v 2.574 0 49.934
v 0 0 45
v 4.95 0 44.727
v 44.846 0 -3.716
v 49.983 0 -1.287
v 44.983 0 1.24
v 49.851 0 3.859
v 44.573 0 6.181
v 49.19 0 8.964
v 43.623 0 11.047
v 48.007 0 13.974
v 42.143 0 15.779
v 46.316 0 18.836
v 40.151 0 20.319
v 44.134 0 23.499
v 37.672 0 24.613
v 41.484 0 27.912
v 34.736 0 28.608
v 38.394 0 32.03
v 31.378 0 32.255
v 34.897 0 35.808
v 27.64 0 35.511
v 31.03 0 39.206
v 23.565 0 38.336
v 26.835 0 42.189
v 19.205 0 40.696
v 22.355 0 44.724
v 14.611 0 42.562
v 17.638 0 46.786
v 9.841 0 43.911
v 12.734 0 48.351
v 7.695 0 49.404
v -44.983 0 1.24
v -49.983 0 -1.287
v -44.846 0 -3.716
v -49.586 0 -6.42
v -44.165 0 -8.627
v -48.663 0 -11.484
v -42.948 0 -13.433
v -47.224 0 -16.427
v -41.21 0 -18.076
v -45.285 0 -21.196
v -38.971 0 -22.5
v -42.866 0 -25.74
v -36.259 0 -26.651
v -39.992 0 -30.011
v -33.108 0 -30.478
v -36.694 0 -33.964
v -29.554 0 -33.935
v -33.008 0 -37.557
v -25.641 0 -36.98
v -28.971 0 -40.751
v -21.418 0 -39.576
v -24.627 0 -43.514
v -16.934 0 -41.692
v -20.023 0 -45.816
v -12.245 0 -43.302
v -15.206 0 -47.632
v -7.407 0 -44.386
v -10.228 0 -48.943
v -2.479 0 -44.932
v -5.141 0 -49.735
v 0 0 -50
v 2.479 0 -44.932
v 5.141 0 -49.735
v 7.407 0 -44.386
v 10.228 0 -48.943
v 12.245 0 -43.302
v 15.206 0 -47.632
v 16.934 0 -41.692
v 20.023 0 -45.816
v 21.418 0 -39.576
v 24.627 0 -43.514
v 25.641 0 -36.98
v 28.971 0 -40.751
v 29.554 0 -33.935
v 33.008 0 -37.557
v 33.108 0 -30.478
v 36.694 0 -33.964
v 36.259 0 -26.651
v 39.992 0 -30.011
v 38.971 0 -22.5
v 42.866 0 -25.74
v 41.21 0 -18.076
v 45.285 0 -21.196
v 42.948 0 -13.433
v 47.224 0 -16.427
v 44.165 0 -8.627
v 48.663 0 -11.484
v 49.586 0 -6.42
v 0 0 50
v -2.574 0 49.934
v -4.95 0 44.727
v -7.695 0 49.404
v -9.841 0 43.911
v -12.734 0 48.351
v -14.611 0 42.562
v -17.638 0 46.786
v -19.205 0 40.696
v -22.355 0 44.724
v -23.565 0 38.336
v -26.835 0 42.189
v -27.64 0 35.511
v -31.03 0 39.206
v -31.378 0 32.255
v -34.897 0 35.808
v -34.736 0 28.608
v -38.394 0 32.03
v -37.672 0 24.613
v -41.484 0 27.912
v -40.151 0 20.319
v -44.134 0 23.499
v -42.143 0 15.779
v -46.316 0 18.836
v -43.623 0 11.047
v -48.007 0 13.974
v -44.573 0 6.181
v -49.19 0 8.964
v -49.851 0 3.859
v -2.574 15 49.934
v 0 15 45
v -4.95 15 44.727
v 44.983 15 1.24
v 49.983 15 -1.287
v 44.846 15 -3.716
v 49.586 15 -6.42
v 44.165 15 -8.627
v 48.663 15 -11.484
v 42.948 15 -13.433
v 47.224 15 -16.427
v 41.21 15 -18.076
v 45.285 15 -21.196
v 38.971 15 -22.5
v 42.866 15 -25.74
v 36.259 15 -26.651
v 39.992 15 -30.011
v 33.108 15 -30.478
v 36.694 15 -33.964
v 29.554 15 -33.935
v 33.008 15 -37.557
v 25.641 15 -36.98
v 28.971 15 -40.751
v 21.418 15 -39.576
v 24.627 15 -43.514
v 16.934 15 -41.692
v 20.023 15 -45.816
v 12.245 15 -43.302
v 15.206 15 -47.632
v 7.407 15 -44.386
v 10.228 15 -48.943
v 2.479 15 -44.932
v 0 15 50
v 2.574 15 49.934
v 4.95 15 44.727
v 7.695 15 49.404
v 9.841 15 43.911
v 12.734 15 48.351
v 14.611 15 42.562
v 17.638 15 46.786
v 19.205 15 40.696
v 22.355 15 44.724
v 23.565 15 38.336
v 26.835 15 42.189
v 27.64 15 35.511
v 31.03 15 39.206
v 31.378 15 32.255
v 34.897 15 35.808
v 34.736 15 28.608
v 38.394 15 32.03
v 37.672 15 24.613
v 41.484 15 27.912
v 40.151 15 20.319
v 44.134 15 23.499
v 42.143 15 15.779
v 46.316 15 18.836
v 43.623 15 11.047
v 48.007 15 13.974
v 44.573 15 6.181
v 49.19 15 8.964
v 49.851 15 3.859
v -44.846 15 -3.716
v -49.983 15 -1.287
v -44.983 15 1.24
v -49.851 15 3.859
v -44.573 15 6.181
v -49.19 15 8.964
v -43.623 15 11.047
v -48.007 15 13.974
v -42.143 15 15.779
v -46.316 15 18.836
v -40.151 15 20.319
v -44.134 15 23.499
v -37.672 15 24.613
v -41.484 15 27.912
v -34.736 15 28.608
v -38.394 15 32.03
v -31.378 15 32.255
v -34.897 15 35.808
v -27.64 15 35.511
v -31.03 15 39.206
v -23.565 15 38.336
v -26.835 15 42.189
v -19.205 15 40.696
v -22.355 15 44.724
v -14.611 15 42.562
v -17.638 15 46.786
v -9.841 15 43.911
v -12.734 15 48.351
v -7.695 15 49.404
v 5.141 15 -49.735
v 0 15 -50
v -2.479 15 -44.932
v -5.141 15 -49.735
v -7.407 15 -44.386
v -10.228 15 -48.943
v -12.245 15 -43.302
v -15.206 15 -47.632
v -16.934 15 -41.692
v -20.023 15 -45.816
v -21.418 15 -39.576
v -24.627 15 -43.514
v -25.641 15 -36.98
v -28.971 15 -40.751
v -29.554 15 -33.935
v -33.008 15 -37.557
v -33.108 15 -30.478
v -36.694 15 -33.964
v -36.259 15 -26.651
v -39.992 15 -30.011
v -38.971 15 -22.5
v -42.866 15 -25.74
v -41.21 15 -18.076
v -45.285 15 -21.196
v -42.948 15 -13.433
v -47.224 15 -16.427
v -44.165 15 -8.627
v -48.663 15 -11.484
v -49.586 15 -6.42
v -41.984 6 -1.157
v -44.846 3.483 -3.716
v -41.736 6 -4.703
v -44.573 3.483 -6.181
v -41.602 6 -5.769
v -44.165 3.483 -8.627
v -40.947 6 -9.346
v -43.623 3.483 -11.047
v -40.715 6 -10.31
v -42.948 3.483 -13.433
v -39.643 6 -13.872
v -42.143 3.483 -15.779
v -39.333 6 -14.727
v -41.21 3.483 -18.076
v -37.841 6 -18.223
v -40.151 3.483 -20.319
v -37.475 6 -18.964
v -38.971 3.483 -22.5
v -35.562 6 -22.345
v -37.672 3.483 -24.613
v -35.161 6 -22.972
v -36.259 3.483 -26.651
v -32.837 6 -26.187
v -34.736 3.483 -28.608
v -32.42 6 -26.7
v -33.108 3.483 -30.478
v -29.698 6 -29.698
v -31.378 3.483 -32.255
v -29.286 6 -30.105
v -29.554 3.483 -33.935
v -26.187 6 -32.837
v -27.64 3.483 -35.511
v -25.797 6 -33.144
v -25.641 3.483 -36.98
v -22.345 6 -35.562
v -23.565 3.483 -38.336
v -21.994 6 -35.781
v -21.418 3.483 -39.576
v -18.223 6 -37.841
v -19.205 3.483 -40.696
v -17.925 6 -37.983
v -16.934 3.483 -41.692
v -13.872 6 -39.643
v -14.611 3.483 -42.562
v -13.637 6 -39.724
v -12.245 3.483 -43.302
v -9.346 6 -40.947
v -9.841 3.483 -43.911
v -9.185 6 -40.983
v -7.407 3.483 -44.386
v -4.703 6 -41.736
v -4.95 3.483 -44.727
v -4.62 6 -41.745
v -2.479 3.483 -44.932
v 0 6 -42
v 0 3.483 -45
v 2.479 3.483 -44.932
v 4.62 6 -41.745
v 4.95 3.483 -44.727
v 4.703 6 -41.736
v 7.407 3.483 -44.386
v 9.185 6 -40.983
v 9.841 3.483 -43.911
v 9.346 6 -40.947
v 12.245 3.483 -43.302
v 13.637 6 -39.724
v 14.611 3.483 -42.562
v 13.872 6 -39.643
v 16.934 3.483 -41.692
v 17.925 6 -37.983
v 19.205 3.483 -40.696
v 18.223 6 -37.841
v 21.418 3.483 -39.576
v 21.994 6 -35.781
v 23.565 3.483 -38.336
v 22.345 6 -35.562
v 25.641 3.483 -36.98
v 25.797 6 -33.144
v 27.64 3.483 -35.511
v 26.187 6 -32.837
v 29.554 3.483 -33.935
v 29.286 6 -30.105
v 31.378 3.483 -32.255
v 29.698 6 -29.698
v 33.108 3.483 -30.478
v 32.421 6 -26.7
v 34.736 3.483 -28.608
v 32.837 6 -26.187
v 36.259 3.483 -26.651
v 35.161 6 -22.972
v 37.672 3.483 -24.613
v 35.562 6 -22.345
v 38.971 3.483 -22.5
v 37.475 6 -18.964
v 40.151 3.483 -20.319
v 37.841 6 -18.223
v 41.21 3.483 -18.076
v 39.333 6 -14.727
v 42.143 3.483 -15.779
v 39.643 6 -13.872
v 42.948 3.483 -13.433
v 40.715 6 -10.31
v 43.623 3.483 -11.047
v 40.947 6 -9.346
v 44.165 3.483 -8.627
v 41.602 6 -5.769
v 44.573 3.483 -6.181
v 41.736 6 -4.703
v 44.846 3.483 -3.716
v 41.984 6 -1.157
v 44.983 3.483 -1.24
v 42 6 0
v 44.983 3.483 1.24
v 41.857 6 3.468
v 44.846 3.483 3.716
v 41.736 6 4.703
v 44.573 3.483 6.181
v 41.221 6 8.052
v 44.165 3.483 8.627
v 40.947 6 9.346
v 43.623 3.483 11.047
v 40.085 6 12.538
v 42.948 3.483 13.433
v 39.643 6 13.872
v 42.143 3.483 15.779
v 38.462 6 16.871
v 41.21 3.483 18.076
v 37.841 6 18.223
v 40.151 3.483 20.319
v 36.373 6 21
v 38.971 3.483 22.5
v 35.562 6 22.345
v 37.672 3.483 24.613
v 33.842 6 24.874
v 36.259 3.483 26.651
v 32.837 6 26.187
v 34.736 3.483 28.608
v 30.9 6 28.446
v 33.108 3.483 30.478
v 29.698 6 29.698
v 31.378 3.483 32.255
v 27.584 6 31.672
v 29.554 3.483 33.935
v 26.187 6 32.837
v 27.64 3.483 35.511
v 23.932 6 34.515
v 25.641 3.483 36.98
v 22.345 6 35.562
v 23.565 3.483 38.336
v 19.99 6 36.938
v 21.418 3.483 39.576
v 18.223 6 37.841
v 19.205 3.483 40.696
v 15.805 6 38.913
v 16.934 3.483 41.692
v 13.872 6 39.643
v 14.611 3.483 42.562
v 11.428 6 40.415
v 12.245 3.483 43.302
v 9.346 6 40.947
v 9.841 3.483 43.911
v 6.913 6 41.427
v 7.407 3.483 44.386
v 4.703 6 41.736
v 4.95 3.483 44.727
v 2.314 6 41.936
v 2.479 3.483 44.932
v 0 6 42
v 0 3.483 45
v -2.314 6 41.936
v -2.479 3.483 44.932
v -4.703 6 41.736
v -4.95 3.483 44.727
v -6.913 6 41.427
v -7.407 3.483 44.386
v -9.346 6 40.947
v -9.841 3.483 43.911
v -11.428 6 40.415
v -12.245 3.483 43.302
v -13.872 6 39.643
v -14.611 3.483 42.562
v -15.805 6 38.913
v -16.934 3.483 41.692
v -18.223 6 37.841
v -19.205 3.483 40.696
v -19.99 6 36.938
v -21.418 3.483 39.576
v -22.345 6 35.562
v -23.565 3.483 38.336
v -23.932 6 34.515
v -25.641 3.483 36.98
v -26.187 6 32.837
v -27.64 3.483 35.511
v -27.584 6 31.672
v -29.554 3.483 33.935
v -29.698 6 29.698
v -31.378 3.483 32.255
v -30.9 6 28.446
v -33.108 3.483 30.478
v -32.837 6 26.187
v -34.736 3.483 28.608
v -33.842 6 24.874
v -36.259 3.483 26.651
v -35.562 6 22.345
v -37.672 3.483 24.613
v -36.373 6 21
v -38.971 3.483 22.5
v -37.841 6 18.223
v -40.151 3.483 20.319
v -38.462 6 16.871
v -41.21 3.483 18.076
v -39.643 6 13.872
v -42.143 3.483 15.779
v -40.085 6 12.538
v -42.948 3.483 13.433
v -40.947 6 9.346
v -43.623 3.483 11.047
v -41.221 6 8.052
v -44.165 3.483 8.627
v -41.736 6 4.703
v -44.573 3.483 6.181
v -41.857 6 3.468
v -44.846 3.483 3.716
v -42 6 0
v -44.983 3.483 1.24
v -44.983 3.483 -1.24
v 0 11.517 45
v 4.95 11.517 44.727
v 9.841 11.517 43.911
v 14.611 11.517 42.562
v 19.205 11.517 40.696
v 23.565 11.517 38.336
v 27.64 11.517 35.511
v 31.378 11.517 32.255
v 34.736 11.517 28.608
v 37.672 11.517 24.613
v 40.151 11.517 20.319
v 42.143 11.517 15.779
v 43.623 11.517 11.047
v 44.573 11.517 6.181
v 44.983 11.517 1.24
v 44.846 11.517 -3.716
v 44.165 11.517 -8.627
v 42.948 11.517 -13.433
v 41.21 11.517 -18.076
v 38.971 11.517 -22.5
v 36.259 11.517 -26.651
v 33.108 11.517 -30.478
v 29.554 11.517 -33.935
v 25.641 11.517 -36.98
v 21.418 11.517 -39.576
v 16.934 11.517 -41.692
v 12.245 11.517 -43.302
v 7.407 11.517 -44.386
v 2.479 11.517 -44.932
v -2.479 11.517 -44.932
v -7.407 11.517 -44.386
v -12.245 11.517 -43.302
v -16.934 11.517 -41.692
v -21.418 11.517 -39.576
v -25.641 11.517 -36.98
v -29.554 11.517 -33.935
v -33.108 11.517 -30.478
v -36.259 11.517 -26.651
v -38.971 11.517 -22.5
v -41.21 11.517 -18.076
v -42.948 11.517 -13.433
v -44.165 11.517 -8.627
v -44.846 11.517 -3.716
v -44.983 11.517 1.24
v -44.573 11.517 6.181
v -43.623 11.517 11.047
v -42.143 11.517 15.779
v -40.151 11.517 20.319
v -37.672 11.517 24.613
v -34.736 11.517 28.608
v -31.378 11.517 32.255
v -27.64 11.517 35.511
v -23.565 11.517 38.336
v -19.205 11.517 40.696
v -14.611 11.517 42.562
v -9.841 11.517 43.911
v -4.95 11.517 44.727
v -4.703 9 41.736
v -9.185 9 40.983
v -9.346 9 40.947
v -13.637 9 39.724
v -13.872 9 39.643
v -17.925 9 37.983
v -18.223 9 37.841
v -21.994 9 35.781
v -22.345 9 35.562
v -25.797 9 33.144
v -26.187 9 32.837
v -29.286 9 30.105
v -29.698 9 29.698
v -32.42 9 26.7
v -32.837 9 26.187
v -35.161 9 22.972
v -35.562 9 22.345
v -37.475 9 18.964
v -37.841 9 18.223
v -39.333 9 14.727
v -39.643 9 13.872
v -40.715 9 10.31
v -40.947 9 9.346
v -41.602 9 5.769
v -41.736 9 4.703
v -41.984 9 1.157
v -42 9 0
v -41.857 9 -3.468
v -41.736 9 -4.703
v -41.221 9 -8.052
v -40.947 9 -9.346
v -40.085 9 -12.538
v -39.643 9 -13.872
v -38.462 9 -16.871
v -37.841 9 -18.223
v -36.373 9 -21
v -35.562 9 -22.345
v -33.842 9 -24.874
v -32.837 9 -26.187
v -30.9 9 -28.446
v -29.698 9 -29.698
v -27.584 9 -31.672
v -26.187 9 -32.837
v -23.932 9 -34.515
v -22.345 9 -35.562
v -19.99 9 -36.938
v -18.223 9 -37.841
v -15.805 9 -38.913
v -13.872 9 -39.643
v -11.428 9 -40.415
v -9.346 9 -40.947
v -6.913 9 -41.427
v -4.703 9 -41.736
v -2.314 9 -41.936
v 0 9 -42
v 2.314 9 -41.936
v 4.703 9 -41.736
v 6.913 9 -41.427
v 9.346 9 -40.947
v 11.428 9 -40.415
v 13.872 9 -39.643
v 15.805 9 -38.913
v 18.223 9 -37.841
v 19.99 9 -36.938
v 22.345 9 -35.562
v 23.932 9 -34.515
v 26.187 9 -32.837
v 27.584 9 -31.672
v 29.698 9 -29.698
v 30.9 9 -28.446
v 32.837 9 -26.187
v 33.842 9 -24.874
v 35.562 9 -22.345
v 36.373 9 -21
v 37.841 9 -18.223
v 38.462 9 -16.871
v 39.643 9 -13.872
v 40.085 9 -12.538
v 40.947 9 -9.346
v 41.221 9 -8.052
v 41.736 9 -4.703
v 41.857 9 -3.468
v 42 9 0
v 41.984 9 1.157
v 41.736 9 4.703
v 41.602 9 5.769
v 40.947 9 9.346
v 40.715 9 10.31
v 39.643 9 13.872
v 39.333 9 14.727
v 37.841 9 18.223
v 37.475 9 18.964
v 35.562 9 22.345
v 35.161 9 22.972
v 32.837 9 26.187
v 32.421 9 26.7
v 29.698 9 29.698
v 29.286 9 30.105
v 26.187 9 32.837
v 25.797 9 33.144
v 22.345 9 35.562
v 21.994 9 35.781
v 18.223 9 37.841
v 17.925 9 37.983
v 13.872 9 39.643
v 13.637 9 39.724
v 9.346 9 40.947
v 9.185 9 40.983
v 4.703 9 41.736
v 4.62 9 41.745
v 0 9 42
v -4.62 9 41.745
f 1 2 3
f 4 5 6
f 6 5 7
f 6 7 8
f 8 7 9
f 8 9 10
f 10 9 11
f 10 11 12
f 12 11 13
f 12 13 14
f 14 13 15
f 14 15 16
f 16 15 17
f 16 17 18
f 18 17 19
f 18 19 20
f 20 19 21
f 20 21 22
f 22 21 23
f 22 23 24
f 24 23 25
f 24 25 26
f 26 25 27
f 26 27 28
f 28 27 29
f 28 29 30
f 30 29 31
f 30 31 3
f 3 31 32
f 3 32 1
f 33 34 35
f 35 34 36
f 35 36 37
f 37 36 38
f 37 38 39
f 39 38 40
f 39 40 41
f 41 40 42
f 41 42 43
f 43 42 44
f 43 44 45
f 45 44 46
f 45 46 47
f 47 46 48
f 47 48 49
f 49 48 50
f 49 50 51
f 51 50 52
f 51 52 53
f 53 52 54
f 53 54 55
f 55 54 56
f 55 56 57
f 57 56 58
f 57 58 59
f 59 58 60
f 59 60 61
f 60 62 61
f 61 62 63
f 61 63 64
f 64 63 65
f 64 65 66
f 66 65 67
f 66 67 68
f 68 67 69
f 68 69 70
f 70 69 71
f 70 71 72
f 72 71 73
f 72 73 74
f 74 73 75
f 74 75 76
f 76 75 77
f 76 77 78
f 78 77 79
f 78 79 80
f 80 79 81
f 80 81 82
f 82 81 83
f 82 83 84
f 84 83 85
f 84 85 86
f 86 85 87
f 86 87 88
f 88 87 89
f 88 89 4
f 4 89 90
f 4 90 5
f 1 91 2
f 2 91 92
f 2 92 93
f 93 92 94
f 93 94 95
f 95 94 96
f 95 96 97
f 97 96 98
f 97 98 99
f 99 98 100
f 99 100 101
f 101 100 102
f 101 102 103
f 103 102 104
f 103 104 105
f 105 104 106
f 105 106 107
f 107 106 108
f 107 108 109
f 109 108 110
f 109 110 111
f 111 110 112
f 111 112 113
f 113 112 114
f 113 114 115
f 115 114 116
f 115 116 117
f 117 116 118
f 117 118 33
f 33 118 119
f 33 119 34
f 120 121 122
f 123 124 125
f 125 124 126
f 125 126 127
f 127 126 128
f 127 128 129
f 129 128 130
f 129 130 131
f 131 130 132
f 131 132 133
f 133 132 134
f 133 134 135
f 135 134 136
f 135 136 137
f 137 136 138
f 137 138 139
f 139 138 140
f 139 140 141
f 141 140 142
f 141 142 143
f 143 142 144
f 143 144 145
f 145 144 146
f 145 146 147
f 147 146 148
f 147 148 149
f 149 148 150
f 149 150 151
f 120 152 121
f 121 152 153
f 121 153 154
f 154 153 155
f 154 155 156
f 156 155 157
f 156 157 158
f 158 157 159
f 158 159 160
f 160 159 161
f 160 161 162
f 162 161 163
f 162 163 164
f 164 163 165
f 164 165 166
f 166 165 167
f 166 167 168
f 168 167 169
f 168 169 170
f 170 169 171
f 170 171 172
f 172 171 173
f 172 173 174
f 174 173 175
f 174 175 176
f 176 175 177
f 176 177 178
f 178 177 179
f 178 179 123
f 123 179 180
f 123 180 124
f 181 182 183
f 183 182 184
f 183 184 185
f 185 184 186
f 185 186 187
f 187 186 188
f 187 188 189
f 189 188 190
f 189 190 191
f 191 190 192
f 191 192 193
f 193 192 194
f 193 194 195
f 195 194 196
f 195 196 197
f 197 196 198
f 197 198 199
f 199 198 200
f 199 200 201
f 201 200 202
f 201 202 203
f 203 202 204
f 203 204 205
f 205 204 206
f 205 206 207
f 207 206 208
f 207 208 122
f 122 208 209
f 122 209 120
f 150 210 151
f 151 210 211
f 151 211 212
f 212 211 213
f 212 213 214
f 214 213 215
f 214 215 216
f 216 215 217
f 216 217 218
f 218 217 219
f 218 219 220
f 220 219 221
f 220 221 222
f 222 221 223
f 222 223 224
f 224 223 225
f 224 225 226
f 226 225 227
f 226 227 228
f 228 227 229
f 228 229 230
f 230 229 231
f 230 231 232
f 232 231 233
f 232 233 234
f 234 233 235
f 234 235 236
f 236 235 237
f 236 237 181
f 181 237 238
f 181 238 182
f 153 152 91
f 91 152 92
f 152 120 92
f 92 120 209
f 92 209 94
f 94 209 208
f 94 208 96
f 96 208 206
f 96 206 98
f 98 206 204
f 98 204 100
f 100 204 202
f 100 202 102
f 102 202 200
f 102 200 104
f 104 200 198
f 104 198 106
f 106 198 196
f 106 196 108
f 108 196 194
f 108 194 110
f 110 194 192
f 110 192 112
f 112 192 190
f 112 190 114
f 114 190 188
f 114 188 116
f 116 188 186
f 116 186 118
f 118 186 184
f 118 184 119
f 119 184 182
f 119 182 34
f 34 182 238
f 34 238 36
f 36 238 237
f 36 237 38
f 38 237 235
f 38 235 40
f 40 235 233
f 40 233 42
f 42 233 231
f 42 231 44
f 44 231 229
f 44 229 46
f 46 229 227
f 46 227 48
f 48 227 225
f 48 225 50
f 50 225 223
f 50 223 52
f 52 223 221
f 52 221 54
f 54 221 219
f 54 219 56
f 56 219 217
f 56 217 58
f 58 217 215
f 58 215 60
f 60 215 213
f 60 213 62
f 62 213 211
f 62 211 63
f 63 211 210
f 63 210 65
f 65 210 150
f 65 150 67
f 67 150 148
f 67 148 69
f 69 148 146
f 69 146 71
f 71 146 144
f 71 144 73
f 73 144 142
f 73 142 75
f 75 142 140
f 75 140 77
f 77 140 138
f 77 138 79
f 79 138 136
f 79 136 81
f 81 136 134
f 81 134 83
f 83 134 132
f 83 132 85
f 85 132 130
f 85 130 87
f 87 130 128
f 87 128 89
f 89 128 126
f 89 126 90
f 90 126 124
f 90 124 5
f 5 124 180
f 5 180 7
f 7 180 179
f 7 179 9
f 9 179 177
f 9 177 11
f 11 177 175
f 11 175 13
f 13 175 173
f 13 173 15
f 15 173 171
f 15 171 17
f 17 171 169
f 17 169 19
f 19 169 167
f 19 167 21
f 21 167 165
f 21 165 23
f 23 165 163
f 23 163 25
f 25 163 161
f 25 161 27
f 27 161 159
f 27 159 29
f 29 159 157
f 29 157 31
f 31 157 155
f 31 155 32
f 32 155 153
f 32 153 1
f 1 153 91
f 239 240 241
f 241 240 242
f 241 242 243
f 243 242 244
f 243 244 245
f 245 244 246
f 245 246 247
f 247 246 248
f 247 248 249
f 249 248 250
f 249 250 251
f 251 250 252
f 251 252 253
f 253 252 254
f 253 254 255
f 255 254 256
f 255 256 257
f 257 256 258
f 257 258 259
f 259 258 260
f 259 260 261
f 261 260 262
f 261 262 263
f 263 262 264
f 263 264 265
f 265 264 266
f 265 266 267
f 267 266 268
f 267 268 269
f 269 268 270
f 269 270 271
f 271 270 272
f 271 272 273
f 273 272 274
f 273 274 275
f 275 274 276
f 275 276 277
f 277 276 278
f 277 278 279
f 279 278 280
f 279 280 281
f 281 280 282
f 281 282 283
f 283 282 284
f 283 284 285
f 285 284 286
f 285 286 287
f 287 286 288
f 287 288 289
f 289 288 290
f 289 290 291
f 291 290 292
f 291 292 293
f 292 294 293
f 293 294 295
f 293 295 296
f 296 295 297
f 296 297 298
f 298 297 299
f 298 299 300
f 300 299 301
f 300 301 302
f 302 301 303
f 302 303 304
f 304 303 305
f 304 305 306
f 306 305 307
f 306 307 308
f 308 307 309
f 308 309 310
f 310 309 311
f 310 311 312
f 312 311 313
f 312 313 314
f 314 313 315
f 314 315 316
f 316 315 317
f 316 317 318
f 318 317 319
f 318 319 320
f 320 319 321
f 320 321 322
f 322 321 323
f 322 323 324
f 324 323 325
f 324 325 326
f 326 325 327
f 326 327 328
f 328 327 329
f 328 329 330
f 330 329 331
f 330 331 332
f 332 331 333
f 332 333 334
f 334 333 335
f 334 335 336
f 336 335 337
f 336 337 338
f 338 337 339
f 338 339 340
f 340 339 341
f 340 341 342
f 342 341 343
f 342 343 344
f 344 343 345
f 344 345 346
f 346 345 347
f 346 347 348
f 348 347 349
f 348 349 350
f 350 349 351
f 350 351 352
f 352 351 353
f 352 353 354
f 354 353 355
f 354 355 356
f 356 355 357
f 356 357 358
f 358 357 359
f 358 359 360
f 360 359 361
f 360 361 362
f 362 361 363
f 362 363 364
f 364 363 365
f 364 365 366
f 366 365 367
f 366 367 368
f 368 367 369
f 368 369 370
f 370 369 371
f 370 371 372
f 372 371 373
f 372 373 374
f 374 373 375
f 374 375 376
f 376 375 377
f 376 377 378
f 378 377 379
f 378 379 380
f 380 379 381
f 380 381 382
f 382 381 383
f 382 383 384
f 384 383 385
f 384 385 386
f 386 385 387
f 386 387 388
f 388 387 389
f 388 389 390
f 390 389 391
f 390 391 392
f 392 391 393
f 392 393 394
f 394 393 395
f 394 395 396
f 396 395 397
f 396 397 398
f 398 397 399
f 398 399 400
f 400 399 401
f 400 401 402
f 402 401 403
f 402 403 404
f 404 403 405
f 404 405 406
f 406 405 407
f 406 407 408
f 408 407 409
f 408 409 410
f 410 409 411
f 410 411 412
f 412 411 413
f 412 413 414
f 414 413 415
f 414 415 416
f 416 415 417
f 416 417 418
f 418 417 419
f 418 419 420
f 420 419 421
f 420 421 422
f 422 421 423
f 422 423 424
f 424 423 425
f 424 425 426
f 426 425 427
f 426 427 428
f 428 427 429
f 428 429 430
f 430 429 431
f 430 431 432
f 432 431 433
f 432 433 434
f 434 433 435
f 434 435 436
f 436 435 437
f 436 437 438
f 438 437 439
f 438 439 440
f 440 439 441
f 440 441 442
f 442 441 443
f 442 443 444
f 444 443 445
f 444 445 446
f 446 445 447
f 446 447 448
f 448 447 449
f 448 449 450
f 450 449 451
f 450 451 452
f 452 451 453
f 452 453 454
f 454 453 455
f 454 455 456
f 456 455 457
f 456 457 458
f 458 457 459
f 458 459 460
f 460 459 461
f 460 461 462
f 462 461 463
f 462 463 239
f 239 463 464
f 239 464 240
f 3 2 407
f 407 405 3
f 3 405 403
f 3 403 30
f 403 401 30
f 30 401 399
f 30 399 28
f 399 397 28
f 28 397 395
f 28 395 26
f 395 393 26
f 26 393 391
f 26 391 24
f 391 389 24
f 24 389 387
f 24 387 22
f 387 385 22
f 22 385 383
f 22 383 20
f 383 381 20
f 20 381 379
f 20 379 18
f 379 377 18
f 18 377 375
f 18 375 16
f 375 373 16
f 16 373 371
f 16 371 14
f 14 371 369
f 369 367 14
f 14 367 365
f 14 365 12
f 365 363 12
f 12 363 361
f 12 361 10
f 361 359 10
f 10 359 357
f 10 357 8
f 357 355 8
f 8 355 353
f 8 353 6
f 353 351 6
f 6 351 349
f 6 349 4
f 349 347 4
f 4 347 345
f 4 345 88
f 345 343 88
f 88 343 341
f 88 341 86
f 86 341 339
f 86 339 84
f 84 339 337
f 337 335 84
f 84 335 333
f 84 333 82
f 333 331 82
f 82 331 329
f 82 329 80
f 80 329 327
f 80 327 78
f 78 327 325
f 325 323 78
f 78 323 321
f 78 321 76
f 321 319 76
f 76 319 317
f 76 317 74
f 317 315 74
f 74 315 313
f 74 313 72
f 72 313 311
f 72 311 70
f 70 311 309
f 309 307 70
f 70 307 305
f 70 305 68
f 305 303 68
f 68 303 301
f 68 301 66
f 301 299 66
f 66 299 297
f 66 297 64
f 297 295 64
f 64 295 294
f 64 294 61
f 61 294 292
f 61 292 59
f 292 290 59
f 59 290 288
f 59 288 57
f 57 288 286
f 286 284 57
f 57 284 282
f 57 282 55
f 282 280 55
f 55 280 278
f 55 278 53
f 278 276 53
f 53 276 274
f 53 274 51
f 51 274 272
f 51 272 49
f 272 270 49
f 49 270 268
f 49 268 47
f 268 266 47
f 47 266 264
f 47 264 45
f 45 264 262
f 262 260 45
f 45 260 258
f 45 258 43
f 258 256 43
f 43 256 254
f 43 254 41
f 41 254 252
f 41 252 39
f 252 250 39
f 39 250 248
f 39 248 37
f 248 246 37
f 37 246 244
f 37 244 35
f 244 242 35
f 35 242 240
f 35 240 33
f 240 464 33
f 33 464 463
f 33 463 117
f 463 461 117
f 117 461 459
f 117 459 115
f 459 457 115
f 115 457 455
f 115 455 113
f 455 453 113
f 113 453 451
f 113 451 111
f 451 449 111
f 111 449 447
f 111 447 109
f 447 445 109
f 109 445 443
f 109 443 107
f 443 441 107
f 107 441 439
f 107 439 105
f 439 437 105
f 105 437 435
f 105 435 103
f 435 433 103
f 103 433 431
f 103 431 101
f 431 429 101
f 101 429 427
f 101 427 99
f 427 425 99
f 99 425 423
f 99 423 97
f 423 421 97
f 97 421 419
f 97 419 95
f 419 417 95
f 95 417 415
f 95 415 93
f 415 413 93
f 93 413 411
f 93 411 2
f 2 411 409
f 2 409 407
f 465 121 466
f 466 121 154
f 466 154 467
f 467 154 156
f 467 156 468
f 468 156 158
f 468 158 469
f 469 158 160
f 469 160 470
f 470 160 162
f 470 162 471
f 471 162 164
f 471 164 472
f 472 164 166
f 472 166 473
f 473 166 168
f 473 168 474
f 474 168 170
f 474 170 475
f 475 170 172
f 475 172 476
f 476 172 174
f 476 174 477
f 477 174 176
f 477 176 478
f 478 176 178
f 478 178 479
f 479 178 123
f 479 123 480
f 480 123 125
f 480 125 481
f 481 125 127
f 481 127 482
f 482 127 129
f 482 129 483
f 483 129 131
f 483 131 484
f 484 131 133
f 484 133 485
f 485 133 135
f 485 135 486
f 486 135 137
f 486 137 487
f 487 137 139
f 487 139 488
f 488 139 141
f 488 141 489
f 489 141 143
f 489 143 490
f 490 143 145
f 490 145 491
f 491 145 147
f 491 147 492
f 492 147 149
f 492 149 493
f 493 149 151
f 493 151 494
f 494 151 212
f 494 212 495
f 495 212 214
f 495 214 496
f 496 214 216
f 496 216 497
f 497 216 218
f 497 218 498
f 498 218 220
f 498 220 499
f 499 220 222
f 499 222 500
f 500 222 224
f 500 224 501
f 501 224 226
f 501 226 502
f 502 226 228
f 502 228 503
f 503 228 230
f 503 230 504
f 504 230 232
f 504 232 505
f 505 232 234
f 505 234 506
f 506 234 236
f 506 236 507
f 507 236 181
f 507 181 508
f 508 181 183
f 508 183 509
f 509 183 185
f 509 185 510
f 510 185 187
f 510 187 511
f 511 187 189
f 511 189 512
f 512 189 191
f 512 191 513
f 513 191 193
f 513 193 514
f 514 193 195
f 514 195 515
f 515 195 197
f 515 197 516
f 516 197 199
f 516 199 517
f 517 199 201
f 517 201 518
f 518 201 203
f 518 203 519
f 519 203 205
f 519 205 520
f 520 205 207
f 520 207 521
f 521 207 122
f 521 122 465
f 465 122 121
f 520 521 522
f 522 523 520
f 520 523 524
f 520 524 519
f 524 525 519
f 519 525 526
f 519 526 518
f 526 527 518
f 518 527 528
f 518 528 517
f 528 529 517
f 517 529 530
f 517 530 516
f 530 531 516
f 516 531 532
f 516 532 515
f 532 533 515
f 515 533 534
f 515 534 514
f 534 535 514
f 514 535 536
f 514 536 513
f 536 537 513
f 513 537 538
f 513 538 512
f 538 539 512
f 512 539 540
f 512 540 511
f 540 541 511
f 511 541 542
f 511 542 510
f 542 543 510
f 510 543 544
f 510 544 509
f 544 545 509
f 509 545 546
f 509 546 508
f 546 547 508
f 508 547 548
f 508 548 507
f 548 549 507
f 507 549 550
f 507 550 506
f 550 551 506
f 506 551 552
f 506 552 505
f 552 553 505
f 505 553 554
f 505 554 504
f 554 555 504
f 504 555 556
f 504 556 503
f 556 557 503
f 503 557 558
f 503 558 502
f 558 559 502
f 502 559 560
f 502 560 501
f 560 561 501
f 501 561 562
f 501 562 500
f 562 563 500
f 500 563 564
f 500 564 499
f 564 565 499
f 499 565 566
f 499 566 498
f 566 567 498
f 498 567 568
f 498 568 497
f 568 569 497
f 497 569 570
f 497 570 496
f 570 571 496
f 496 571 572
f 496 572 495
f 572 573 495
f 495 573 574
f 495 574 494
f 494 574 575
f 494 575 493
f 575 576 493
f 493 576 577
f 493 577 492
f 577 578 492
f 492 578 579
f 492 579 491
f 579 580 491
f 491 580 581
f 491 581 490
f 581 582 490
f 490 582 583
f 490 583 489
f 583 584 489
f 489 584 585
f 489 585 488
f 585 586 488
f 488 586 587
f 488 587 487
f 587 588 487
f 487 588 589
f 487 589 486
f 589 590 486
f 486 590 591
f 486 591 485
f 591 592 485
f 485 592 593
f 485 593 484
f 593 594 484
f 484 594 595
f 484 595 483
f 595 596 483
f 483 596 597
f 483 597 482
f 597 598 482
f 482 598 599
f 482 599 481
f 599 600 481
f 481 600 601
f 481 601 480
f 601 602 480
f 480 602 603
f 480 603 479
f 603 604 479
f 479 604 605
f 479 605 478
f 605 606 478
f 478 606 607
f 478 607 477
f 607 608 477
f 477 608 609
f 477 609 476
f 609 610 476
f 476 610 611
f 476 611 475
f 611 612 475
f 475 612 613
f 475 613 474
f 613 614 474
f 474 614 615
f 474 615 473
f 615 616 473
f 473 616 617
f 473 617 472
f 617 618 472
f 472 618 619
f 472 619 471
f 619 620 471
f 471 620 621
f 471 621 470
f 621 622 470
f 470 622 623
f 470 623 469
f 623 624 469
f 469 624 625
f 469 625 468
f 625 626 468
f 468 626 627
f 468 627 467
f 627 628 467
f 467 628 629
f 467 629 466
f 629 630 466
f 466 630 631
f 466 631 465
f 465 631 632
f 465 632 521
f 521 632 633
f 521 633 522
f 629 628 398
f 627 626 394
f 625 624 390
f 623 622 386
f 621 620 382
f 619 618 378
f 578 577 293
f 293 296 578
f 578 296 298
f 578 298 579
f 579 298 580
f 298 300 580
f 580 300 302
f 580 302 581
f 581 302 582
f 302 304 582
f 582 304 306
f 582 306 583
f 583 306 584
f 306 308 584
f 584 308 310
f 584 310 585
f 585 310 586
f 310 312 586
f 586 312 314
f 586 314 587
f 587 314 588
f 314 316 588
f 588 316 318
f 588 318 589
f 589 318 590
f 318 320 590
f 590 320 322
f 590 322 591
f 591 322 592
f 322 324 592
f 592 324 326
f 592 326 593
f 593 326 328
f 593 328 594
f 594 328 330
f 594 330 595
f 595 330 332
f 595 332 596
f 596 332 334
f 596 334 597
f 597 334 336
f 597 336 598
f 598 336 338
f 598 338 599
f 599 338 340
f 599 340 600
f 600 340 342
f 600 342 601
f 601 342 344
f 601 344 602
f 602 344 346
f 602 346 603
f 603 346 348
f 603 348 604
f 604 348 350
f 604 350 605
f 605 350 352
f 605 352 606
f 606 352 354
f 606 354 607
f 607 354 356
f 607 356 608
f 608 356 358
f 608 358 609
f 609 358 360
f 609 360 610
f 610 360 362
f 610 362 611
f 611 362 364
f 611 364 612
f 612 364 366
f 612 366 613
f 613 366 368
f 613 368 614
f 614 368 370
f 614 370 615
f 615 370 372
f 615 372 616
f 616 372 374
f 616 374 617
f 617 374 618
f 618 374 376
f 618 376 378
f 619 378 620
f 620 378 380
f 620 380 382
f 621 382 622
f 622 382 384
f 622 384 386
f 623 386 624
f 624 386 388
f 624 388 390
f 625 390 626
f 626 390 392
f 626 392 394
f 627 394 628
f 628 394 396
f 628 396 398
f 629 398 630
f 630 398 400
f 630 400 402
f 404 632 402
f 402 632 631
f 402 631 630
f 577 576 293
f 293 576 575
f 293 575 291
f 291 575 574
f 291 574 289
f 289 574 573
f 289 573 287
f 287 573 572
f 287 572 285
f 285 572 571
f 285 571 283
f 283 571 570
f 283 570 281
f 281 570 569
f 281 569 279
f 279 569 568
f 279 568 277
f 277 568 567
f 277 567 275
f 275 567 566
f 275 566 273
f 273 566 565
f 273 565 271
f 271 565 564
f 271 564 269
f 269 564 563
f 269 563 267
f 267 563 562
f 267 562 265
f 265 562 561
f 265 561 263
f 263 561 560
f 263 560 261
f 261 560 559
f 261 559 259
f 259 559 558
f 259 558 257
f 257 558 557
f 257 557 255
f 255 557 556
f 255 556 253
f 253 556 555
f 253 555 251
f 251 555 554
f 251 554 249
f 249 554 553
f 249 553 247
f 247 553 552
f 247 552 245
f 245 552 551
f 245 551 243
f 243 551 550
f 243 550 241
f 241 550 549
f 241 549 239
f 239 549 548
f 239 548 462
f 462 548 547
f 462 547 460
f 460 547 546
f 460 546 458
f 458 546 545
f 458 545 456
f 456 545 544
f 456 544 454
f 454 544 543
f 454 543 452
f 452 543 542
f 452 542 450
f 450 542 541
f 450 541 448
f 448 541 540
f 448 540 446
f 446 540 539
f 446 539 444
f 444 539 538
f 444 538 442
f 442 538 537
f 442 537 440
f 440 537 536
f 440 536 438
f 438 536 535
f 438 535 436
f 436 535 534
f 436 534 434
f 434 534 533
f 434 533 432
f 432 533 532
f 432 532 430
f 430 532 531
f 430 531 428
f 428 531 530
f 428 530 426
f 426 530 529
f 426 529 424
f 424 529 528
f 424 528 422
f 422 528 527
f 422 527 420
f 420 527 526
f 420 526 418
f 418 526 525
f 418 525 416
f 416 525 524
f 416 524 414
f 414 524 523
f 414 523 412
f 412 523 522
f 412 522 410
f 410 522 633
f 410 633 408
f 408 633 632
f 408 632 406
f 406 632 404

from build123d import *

# Parameters (mm, degrees)
CROQUIS1_R              = 50
CROQUIS1_R_2            = 42
SALIENTE_EXTRUIR1_DEPTH = 15


with BuildPart() as part:
    # Croquis1 → Saliente-Extruir1 (new body)
    with BuildSketch(Plane(origin=(0, 0, 0), x_dir=(1, 0, 0), z_dir=(0, 1, 0))):
        with Locations(Location((0, 0, 0), (0, 0, 270))):
            Circle(CROQUIS1_R)
        with Locations(Location((0, 0, 0), (0, 0, 270))):
            Circle(CROQUIS1_R_2, mode=Mode.SUBTRACT)
    extrude(amount=SALIENTE_EXTRUIR1_DEPTH)

    # Croquis3 → Cortar-Revolución1 (revolve, cut)
    with BuildSketch(Plane.XY, mode=Mode.PRIVATE) as cortar_revoluci_n1_sk:
        Polygon((-45, 11.517298894), (-42, 9), (-42, 15), (-45, 15), align=None)
        Polygon((-45, 0), (-42, 0), (-42, 6), (-45, 3.482701106), align=None)
    revolve(cortar_revoluci_n1_sk.sketch.rotate(Axis((0, 3.82587886, 0), (0, -1, 0)), 270), axis=Axis((0, 3.82587886, 0), (0, -1, 0)), mode=Mode.SUBTRACT)


solid = part.part
